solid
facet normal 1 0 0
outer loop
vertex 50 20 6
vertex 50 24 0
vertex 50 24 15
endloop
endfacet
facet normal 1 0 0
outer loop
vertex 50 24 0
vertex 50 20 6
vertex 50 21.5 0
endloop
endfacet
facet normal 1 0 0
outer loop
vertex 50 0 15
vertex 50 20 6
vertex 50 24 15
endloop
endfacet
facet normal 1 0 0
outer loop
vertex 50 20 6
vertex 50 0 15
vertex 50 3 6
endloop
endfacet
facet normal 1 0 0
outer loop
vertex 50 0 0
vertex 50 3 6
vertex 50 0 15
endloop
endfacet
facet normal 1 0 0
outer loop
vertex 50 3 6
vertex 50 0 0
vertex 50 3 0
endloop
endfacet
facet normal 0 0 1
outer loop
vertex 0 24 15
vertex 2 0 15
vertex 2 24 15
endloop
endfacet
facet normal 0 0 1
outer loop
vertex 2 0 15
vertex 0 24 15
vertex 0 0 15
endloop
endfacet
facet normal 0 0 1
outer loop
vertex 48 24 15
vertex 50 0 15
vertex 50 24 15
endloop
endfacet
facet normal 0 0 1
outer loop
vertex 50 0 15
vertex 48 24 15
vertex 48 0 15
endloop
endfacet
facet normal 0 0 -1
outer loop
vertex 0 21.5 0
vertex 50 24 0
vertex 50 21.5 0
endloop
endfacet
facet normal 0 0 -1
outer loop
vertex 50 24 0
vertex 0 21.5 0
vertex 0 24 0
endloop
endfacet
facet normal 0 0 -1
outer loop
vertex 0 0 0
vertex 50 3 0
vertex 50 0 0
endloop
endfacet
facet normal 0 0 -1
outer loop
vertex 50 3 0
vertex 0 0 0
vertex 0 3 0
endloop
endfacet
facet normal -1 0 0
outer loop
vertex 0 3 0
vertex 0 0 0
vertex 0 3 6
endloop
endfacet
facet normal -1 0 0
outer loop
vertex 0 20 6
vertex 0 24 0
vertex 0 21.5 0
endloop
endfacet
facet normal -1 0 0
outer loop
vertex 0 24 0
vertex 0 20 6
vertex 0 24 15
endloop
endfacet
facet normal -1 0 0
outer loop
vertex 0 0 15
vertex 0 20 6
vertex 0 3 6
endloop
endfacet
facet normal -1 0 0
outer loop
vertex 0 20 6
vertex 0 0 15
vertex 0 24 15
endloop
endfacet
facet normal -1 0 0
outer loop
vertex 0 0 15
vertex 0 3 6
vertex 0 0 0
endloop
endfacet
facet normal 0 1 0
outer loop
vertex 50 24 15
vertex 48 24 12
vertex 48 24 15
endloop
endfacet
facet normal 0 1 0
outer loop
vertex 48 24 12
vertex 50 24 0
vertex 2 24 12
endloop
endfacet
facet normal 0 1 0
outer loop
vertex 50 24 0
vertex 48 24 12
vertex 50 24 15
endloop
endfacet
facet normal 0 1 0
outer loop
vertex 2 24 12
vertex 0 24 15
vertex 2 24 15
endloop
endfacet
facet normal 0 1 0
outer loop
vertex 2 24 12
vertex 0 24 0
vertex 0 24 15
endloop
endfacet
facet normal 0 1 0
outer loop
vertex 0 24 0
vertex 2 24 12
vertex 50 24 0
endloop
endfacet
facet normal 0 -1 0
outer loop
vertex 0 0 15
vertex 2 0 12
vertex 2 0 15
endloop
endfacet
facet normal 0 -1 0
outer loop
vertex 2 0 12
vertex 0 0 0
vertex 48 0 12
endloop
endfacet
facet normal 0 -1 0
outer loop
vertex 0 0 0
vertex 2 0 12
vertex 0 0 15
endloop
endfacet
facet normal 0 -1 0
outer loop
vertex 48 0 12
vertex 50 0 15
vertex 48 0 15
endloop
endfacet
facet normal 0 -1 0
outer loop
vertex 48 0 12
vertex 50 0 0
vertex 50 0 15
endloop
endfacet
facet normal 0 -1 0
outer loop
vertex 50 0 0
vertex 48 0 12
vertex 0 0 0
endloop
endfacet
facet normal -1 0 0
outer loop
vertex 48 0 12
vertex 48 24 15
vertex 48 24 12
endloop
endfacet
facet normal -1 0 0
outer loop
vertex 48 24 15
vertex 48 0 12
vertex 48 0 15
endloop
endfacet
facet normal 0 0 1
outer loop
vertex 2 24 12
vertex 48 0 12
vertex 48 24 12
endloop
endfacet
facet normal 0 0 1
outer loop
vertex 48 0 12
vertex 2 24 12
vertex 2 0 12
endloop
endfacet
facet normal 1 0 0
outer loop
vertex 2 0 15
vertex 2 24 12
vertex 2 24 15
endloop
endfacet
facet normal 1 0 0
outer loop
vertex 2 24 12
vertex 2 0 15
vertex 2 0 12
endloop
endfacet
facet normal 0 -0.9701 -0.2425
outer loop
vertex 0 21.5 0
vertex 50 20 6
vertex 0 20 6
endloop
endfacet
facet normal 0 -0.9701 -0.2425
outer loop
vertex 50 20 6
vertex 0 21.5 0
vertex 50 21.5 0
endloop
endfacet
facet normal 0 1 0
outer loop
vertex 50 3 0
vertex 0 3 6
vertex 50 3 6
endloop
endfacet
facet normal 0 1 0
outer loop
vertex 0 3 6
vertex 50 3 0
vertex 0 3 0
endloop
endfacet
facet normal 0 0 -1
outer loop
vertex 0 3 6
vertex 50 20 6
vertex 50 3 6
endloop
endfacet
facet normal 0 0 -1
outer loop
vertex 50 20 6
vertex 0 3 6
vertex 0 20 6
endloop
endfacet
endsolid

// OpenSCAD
d=24;
t=17;
b=19;

difference(){
    cube([50, d, 15]);
    translate([2, -5, 12]) cube([46, d+10, 5]);
    translate([-2, 0, 0])
        rotate([90, 0 ,90])
            linear_extrude(height=54)
                polygon([[3, -2], [3, 6], [3+t, 6], [3+b, -2]]);
}
